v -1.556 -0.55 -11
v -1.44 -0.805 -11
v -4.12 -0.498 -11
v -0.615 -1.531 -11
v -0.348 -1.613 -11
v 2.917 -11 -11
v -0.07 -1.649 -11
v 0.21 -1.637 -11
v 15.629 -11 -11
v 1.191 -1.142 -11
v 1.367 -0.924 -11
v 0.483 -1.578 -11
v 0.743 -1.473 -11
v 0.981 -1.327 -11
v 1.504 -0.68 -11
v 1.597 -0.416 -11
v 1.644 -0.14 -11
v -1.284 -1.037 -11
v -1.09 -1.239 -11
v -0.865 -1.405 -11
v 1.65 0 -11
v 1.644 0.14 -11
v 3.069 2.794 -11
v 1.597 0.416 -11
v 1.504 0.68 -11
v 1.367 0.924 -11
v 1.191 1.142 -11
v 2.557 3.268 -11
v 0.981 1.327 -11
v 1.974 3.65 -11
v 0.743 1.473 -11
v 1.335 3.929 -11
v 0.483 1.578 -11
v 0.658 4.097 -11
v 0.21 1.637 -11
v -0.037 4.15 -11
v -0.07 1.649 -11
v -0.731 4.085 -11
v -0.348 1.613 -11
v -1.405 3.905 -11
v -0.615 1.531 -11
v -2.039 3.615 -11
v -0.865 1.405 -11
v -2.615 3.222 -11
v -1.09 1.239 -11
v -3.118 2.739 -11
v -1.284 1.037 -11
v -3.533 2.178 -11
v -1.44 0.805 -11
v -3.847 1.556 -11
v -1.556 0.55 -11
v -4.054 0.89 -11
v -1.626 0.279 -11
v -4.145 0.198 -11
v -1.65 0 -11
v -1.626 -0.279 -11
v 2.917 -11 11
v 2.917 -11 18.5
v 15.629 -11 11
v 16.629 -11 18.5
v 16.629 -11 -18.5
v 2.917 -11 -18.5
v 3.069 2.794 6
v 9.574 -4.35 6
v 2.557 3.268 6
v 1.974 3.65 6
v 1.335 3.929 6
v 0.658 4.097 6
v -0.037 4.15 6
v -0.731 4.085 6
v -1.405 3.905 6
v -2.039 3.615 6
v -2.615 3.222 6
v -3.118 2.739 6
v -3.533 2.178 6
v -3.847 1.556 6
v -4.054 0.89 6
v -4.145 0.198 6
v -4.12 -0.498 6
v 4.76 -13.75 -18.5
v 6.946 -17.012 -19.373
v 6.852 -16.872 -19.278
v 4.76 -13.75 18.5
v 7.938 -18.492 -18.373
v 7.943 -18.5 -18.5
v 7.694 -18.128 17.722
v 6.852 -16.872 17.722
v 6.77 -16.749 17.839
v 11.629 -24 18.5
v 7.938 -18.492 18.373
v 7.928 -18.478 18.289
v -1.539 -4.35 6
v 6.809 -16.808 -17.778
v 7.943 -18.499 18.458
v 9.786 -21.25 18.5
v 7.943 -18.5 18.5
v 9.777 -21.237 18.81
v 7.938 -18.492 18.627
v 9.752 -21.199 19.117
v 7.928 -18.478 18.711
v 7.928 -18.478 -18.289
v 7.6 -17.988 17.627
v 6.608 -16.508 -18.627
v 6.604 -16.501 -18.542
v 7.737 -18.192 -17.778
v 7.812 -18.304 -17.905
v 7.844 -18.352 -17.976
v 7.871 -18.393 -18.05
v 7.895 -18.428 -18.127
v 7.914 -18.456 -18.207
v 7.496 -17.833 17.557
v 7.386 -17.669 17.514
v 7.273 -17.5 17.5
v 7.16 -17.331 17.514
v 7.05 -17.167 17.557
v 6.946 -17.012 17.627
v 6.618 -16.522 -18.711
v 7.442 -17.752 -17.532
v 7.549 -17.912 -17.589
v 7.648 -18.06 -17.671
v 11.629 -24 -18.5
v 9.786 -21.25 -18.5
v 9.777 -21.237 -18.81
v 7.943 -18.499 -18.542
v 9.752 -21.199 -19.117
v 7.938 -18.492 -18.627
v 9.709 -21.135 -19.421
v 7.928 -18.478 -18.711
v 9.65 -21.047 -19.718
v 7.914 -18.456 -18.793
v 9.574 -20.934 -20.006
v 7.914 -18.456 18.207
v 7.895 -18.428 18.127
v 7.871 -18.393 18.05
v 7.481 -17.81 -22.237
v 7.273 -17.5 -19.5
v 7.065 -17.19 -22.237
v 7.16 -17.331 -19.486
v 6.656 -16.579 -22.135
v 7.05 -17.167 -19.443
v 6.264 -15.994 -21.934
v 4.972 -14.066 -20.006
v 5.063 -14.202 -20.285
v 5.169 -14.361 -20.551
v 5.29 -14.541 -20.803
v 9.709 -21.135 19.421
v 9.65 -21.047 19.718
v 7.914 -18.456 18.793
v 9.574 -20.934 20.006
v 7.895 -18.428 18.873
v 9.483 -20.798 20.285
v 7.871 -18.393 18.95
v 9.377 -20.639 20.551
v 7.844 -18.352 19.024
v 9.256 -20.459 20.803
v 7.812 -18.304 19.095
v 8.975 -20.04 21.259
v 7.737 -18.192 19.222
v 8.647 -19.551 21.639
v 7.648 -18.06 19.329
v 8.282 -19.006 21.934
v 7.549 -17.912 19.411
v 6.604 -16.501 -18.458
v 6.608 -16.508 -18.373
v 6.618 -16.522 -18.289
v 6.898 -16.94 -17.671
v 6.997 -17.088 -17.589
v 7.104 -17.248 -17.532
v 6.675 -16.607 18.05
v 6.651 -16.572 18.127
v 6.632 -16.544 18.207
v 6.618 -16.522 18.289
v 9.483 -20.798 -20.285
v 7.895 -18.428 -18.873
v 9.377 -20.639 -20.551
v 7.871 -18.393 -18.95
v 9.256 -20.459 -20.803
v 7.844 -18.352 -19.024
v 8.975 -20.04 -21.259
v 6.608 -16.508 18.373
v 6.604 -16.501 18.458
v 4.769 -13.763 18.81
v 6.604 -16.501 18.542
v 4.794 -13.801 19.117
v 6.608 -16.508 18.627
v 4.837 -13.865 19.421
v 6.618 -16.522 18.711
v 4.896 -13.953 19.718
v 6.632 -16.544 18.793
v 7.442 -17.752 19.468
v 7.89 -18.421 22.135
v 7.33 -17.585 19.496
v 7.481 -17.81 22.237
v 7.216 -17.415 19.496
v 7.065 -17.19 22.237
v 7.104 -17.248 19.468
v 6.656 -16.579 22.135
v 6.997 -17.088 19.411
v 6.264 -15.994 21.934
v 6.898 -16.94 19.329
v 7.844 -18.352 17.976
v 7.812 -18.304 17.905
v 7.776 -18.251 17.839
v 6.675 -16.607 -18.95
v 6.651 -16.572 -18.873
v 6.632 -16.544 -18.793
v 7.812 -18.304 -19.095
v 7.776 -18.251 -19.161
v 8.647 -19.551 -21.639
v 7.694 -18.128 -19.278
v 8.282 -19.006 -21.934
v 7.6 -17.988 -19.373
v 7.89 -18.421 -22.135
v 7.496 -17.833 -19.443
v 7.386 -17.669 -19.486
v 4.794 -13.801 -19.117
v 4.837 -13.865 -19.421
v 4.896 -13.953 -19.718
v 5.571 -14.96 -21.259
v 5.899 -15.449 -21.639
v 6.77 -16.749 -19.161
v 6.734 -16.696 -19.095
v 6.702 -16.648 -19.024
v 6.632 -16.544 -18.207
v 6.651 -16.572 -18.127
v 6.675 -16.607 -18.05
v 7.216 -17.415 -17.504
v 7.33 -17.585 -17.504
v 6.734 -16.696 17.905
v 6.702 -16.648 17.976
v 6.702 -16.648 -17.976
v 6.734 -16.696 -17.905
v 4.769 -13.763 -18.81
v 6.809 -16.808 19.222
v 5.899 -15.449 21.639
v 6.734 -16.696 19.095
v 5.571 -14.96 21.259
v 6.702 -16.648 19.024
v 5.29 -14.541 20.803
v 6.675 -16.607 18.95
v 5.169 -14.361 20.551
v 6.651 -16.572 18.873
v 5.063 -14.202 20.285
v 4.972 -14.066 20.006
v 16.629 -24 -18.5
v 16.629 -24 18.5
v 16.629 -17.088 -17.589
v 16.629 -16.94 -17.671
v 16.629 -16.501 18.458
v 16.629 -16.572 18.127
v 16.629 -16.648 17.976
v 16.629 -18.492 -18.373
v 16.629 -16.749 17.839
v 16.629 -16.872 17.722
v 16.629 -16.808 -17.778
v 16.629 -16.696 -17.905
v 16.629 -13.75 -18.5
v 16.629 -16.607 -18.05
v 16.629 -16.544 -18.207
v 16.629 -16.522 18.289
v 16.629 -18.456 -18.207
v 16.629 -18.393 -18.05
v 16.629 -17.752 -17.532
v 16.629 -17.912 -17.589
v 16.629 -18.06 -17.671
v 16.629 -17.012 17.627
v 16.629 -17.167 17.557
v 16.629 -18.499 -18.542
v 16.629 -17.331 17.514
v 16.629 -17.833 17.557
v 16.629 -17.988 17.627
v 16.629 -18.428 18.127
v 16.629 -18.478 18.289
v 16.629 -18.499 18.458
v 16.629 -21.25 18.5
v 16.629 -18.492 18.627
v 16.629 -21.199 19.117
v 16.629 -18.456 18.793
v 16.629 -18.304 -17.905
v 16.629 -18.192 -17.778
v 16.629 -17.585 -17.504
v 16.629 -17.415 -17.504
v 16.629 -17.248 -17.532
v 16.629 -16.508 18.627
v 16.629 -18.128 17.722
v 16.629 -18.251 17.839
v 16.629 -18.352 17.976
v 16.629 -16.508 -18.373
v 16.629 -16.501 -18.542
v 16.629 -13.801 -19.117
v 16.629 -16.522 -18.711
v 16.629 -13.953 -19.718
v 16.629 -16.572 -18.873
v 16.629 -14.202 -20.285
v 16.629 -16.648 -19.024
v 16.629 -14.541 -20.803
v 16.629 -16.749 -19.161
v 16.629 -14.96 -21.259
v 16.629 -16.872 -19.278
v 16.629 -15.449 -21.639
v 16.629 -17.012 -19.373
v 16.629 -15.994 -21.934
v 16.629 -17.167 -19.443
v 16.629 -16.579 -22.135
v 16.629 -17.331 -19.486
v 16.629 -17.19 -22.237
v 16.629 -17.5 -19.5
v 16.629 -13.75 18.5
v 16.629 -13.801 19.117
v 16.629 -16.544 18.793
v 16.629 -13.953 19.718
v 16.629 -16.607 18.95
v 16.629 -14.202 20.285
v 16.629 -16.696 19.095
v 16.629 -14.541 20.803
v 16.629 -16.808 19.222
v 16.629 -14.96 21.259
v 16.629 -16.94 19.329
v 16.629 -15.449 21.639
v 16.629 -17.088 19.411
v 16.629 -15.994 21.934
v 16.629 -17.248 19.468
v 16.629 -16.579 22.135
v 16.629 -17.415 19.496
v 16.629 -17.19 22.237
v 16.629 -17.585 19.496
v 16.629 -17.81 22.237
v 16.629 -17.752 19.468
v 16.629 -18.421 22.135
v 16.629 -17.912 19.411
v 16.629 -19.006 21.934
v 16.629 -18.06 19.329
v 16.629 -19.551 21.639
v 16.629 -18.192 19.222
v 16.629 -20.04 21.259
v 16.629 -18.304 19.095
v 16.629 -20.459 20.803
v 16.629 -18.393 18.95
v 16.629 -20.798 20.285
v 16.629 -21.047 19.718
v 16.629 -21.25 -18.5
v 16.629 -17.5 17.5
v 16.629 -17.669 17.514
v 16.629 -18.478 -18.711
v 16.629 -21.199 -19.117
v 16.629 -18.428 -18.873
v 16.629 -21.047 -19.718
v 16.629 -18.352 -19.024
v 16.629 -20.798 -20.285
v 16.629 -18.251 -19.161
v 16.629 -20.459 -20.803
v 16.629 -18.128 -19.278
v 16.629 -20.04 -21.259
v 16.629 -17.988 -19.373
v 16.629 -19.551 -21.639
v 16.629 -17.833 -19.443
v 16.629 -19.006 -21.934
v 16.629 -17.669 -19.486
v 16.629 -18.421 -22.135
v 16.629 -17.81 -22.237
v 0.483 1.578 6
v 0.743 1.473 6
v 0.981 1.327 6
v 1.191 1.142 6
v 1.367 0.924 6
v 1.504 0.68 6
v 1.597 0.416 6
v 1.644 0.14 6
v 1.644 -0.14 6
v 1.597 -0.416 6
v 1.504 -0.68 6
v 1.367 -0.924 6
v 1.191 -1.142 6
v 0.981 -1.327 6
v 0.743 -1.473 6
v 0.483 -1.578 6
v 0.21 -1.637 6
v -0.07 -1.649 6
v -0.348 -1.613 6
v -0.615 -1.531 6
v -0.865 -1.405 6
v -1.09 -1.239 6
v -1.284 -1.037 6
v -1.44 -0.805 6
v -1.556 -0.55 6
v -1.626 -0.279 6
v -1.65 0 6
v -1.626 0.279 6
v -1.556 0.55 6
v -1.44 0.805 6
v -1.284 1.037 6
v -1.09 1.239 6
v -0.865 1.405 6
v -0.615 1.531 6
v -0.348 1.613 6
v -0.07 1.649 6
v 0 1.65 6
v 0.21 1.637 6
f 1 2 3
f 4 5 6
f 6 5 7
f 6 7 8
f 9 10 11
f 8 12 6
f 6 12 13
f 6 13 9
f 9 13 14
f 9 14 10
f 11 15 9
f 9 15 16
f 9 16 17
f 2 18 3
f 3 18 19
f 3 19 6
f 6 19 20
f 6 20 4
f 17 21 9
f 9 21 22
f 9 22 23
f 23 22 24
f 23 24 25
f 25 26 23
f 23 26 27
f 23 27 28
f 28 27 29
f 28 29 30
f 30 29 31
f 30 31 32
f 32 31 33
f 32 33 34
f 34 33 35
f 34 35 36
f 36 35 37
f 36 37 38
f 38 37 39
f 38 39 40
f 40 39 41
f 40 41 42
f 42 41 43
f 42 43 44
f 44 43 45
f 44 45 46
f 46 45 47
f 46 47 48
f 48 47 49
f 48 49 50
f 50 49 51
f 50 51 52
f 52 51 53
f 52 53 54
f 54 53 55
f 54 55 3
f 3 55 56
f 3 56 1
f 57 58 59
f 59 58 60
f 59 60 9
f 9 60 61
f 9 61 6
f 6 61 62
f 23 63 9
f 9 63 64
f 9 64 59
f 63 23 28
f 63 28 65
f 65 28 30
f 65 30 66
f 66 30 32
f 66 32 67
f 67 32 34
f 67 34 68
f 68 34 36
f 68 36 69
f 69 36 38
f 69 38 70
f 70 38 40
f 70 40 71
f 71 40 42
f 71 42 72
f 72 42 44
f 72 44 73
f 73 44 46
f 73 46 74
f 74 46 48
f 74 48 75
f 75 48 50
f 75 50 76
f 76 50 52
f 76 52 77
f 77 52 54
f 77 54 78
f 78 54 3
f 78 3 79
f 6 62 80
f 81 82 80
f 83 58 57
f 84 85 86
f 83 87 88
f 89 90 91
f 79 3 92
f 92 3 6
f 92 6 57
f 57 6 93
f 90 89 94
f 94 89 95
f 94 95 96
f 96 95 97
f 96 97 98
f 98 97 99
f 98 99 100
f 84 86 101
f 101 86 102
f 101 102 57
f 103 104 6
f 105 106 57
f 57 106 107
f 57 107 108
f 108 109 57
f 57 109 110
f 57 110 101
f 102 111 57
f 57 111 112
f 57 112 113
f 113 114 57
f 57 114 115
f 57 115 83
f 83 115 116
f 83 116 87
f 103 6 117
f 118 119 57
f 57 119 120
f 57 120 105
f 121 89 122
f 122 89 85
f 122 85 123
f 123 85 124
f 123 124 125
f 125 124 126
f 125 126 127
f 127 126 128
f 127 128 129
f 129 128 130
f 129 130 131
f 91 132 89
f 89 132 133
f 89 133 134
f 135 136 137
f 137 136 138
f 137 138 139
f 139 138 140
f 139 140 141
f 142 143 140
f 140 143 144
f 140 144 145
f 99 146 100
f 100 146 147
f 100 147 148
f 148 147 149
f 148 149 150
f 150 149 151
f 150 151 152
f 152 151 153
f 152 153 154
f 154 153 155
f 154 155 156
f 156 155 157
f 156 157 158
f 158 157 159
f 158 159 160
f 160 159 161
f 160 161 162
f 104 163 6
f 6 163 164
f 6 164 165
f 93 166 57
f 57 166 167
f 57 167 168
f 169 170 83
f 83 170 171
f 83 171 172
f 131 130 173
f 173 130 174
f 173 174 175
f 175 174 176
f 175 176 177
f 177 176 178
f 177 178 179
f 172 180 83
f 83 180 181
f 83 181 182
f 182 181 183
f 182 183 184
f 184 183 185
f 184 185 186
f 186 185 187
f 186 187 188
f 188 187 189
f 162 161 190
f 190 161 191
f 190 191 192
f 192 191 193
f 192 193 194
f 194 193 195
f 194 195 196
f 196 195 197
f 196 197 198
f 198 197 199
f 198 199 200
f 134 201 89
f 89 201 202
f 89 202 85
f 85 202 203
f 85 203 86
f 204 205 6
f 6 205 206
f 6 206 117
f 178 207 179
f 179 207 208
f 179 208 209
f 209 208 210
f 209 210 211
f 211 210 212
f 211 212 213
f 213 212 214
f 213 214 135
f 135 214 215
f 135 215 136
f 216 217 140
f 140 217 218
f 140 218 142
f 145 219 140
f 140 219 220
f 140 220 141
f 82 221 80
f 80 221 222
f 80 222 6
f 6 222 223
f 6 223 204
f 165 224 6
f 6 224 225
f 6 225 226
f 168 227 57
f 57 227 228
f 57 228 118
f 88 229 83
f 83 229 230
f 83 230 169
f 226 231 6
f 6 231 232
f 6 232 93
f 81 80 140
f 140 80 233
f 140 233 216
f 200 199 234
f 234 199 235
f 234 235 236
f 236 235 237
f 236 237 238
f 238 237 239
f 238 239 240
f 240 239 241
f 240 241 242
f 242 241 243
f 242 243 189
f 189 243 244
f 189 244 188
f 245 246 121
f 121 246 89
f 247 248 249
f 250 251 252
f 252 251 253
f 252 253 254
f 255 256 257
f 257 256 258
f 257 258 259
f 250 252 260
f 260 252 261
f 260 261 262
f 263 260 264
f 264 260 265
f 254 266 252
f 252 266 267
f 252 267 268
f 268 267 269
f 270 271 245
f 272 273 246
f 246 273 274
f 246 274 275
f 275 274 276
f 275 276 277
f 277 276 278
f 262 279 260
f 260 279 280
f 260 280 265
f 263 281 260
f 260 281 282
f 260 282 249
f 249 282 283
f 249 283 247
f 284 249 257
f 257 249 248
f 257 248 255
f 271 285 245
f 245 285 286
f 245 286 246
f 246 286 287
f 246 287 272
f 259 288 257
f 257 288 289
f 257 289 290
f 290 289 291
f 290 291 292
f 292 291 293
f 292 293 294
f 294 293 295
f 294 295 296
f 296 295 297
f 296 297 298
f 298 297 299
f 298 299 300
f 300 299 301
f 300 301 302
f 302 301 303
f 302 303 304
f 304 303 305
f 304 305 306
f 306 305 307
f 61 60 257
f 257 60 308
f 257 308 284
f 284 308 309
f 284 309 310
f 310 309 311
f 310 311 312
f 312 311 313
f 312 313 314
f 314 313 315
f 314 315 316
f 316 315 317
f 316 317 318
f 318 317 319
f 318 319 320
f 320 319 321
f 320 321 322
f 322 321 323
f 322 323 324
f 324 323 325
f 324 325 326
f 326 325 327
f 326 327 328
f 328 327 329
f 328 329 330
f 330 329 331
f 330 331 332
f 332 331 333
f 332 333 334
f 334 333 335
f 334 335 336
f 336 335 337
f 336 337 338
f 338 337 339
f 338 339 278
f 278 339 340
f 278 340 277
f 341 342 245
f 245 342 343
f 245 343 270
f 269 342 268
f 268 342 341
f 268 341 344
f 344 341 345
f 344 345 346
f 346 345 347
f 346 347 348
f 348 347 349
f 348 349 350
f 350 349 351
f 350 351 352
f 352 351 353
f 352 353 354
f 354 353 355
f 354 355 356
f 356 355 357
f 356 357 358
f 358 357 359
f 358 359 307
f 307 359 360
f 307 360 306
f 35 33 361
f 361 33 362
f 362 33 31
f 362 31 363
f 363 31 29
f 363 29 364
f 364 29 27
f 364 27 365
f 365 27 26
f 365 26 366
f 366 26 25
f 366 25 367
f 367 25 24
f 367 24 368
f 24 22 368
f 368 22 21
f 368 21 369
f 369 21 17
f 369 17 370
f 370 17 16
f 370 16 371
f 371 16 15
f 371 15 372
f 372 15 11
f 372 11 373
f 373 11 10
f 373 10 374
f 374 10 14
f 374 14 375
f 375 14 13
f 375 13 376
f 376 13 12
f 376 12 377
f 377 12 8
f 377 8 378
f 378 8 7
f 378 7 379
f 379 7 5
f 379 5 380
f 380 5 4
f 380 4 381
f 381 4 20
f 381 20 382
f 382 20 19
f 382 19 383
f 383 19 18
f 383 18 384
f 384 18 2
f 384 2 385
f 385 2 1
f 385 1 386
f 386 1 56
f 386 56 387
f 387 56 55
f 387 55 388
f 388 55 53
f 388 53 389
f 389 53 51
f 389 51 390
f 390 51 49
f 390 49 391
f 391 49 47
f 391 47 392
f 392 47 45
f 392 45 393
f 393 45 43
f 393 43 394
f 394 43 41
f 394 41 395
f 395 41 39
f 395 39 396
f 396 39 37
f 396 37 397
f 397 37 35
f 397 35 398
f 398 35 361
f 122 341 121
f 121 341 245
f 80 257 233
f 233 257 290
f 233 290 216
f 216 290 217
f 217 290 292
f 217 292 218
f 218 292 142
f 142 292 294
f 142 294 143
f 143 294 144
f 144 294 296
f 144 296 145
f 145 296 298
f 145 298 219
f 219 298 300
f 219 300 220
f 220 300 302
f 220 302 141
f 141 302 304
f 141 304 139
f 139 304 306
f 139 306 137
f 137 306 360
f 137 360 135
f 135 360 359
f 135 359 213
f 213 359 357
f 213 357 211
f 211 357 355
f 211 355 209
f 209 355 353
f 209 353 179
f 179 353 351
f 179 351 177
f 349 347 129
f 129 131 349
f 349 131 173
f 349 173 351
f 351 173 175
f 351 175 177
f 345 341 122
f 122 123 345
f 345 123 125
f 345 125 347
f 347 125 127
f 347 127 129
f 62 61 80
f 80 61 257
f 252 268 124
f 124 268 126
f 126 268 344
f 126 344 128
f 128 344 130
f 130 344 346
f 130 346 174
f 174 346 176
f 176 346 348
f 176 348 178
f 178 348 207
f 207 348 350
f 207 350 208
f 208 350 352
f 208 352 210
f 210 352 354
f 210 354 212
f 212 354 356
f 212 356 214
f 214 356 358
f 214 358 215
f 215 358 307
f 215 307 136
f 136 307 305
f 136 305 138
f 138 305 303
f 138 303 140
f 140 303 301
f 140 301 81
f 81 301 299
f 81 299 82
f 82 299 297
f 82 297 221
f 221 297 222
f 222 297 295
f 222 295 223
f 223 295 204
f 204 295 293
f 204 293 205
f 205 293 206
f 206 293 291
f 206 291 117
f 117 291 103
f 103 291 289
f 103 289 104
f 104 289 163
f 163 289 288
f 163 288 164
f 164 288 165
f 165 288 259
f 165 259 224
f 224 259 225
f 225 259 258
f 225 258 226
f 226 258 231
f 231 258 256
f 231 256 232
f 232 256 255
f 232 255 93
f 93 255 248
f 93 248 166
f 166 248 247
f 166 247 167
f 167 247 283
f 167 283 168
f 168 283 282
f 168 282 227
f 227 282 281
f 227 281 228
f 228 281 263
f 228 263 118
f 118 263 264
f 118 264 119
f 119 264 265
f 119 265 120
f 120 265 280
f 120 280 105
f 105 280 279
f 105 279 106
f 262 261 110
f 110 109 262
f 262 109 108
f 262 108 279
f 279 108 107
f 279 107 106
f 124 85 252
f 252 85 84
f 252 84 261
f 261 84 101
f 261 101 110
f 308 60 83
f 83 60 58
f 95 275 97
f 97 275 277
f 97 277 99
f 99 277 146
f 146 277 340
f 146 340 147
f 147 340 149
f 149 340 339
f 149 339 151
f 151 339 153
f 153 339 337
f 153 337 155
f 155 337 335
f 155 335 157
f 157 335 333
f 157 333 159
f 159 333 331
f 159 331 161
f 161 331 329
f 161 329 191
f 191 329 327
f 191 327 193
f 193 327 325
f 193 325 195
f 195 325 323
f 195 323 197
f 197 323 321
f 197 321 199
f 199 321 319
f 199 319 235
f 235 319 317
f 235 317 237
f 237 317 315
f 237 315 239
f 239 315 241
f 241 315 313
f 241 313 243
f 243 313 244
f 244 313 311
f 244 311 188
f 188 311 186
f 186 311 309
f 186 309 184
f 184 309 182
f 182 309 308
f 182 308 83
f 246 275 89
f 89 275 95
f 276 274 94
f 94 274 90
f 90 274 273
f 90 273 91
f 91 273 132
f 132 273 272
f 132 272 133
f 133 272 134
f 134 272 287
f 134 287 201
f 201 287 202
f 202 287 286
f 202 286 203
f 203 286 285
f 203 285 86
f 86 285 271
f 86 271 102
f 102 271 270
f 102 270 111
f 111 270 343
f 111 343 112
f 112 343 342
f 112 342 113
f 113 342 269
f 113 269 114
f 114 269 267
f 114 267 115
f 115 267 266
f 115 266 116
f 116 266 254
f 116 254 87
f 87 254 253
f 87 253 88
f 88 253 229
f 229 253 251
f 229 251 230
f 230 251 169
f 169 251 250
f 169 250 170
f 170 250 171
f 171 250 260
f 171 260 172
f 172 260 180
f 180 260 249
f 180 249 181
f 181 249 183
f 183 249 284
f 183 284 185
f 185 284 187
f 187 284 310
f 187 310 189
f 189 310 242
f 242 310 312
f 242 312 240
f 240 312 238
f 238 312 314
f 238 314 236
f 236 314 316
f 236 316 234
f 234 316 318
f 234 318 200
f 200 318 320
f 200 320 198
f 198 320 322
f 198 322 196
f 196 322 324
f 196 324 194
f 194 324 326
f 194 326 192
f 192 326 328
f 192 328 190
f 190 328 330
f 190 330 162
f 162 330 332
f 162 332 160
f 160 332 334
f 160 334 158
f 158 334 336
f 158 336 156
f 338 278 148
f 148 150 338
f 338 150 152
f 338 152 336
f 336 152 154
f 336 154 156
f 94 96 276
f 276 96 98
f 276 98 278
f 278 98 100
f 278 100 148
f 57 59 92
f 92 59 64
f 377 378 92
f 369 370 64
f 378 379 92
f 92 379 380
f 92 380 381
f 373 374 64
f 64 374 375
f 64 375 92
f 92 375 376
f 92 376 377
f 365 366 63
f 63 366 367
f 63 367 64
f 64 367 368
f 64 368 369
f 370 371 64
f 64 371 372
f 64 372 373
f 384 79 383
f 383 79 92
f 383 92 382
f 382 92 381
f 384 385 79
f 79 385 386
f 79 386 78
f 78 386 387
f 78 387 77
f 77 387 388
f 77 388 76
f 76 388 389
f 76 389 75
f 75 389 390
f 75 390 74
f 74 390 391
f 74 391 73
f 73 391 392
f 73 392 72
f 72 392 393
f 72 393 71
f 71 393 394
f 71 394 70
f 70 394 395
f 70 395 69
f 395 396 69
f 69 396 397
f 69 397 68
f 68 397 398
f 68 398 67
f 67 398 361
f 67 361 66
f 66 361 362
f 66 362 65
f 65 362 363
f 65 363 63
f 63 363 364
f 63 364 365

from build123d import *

# Parameters (mm, degrees)
ESQUISSE1_R             = 1.65
BOSS_EXTRU_1_DEPTH      = 11
BOSS_EXTRU_2_REACH      = 35.597
ESQUISSE2_W             = 22
ESQUISSE2_H             = 6.5
ENL_V_MAT_EXTRU_1_DEPTH = 30


with BuildPart() as part:
    # Esquisse1 → Boss.-Extru.1 (new, symmetric)
    with BuildSketch(Plane.XY):
        with BuildLine():
            Line((11.628725406, -24), (16.628725406, -24))
            Line((16.628725406, -24), (16.628725406, -11))
            Line((16.628725406, -11), (15.628725406, -11))
            Line((15.628725406, -11), (3.068517607, 2.794047189))
            ThreePointArc((3.068517607, 2.794047189), (-1.728115101, 3.77307808), (-4.119967472, -0.49836536))
            Line((-4.119967472, -0.49836536), (11.628725406, -24))
        make_face()
        Circle(ESQUISSE1_R, mode=Mode.SUBTRACT)
    extrude(amount=BOSS_EXTRU_1_DEPTH, both=True)

    # Boss.-Extru.2: up to this plane
    boss_extru_2_end = Plane(origin=(-4.119967472, -0.49836536, 11), z_dir=(0.8307275154862657, 0.5566792568562408, 0))
    # Esquisse2 → Boss.-Extru.2 (add, up to the surface)
    with BuildSketch(Plane(origin=(16.628725406, 0, 0), x_dir=(0, 0, -1), z_dir=(1, 0, 0)), mode=Mode.PRIVATE) as boss_extru_2_sk1:
        with BuildLine():
            ThreePointArc((-18.5, -13.75), (-15.848349571, -14.848349571), (-14.75, -17.5))
            Line((-14.75, -17.5), (-11, -17.5))
            Line((-11, -17.5), (-11, -11))
            Line((-11, -11), (-18.5, -11))
            Line((-18.5, -11), (-18.5, -13.75))
        make_face()
    boss_extru_2_tool1 = split(extrude(boss_extru_2_sk1.sketch, amount=-BOSS_EXTRU_2_REACH, mode=Mode.PRIVATE), bisect_by=boss_extru_2_end, keep=Keep.BOTH, mode=Mode.PRIVATE)
    add(boss_extru_2_tool1.solids().sort_by_distance((16.628725, -13.764206, 14.117746))[0])
    # Esquisse2 → Boss.-Extru.2 (add, up to the surface)
    with BuildSketch(Plane(origin=(16.628725406, 0, 0), x_dir=(0, 0, -1), z_dir=(1, 0, 0)), mode=Mode.PRIVATE) as boss_extru_2_sk2:
        with BuildLine():
            Line((-11, -17.5), (-14.75, -17.5))
            ThreePointArc((-14.75, -17.5), (-15.848349571, -20.151650429), (-18.5, -21.25))
            Line((-18.5, -21.25), (-18.5, -24))
            Line((-18.5, -24), (-11, -24))
            Line((-11, -24), (-11, -17.5))
        make_face()
    boss_extru_2_tool2 = split(extrude(boss_extru_2_sk2.sketch, amount=-BOSS_EXTRU_2_REACH, mode=Mode.PRIVATE), bisect_by=boss_extru_2_end, keep=Keep.BOTH, mode=Mode.PRIVATE)
    add(boss_extru_2_tool2.solids().sort_by_distance((16.628725, -21.235794, 14.117746))[0])
    # Esquisse2 → Boss.-Extru.2 (add, up to the surface)
    with BuildSketch(Plane(origin=(16.628725406, 0, 0), x_dir=(0, 0, -1), z_dir=(1, 0, 0)), mode=Mode.PRIVATE) as boss_extru_2_sk3:
        with BuildLine():
            ThreePointArc((-18.5, -16.5), (-17.792893219, -16.792893219), (-17.5, -17.5))
            Line((-17.5, -17.5), (-14.75, -17.5))
            ThreePointArc((-14.75, -17.5), (-15.848349571, -14.848349571), (-18.5, -13.75))
            Line((-18.5, -13.75), (-18.5, -16.5))
        make_face()
    boss_extru_2_tool3 = split(extrude(boss_extru_2_sk3.sketch, amount=-BOSS_EXTRU_2_REACH, mode=Mode.PRIVATE), bisect_by=boss_extru_2_end, keep=Keep.BOTH, mode=Mode.PRIVATE)
    add(boss_extru_2_tool3.solids().sort_by_distance((16.628725, -15.8191, 16.8191))[0])
    # Esquisse2 → Boss.-Extru.2 (add, up to the surface)
    with BuildSketch(Plane(origin=(16.628725406, 0, 0), x_dir=(0, 0, -1), z_dir=(1, 0, 0)), mode=Mode.PRIVATE) as boss_extru_2_sk4:
        with BuildLine():
            Line((-14.75, -17.5), (-17.5, -17.5))
            ThreePointArc((-17.5, -17.5), (-17.792893219, -18.207106781), (-18.5, -18.5))
            Line((-18.5, -18.5), (-18.5, -21.25))
            ThreePointArc((-18.5, -21.25), (-15.848349571, -20.151650429), (-14.75, -17.5))
        make_face()
    boss_extru_2_tool4 = split(extrude(boss_extru_2_sk4.sketch, amount=-BOSS_EXTRU_2_REACH, mode=Mode.PRIVATE), bisect_by=boss_extru_2_end, keep=Keep.BOTH, mode=Mode.PRIVATE)
    add(boss_extru_2_tool4.solids().sort_by_distance((16.628725, -19.1809, 16.8191))[0])
    # Esquisse2 → Boss.-Extru.2 (add, up to the surface)
    with BuildSketch(Plane(origin=(16.628725406, 0, 0), x_dir=(0, 0, -1), z_dir=(1, 0, 0)), mode=Mode.PRIVATE) as boss_extru_2_sk5:
        with BuildLine():
            ThreePointArc((-18.5, -16.5), (-17.792893219, -16.792893219), (-17.5, -17.5))
            Line((-17.5, -17.5), (-14.75, -17.5))
            ThreePointArc((-14.75, -17.5), (-15.848349571, -14.848349571), (-18.5, -13.75))
            Line((-18.5, -13.75), (-18.5, -16.5))
        make_face()
    boss_extru_2_tool5 = split(extrude(boss_extru_2_sk5.sketch, amount=-BOSS_EXTRU_2_REACH, mode=Mode.PRIVATE), bisect_by=boss_extru_2_end, keep=Keep.BOTH, mode=Mode.PRIVATE)
    add(boss_extru_2_tool5.solids().sort_by_distance((16.628725, -15.8191, 16.8191))[0])
    # Esquisse2 → Boss.-Extru.2 (add, up to the surface)
    with BuildSketch(Plane(origin=(16.628725406, 0, 0), x_dir=(0, 0, -1), z_dir=(1, 0, 0)), mode=Mode.PRIVATE) as boss_extru_2_sk6:
        with BuildLine():
            Line((-14.75, -17.5), (-17.5, -17.5))
            ThreePointArc((-17.5, -17.5), (-17.792893219, -18.207106781), (-18.5, -18.5))
            Line((-18.5, -18.5), (-18.5, -21.25))
            ThreePointArc((-18.5, -21.25), (-15.848349571, -20.151650429), (-14.75, -17.5))
        make_face()
    boss_extru_2_tool6 = split(extrude(boss_extru_2_sk6.sketch, amount=-BOSS_EXTRU_2_REACH, mode=Mode.PRIVATE), bisect_by=boss_extru_2_end, keep=Keep.BOTH, mode=Mode.PRIVATE)
    add(boss_extru_2_tool6.solids().sort_by_distance((16.628725, -19.1809, 16.8191))[0])
    # Esquisse2 → Boss.-Extru.2 (add, up to the surface)
    with BuildSketch(Plane(origin=(16.628725406, 0, 0), x_dir=(0, 0, -1), z_dir=(1, 0, 0)), mode=Mode.PRIVATE) as boss_extru_2_sk7:
        with BuildLine():
            ThreePointArc((-18.5, -18.5), (-19.5, -17.5), (-18.5, -16.5))
            Line((-18.5, -16.5), (-18.5, -13.75))
            ThreePointArc((-18.5, -13.75), (-22.25, -17.5), (-18.5, -21.25))
            Line((-18.5, -21.25), (-18.5, -18.5))
        make_face()
    boss_extru_2_tool7 = split(extrude(boss_extru_2_sk7.sketch, amount=-BOSS_EXTRU_2_REACH, mode=Mode.PRIVATE), bisect_by=boss_extru_2_end, keep=Keep.BOTH, mode=Mode.PRIVATE)
    add(boss_extru_2_tool7.solids().sort_by_distance((16.628725, -17.5, 20.1809))[0])
    # Esquisse2 → Boss.-Extru.2 (add, up to the surface)
    with BuildSketch(Plane(origin=(16.628725406, 0, 0), x_dir=(0, 0, -1), z_dir=(1, 0, 0)), mode=Mode.PRIVATE) as boss_extru_2_sk8:
        with Locations((0, -14.25)):
            Rectangle(ESQUISSE2_W, ESQUISSE2_H)
    boss_extru_2_tool8 = split(extrude(boss_extru_2_sk8.sketch, amount=-BOSS_EXTRU_2_REACH, mode=Mode.PRIVATE), bisect_by=boss_extru_2_end, keep=Keep.BOTH, mode=Mode.PRIVATE)
    add(boss_extru_2_tool8.solids().sort_by_distance((16.628725, -14.25, 0))[0])
    # Esquisse2 → Boss.-Extru.2 (add, up to the surface)
    with BuildSketch(Plane(origin=(16.628725406, 0, 0), x_dir=(0, 0, -1), z_dir=(1, 0, 0)), mode=Mode.PRIVATE) as boss_extru_2_sk9:
        with Locations((0, -20.75)):
            Rectangle(ESQUISSE2_W, ESQUISSE2_H)
    boss_extru_2_tool9 = split(extrude(boss_extru_2_sk9.sketch, amount=-BOSS_EXTRU_2_REACH, mode=Mode.PRIVATE), bisect_by=boss_extru_2_end, keep=Keep.BOTH, mode=Mode.PRIVATE)
    add(boss_extru_2_tool9.solids().sort_by_distance((16.628725, -20.75, 0))[0])
    # Esquisse2 → Boss.-Extru.2 (add, up to the surface)
    with BuildSketch(Plane(origin=(16.628725406, 0, 0), x_dir=(0, 0, -1), z_dir=(1, 0, 0)), mode=Mode.PRIVATE) as boss_extru_2_sk10:
        with BuildLine():
            Line((11, -11), (11, -17.5))
            Line((11, -17.5), (14.75, -17.5))
            ThreePointArc((14.75, -17.5), (15.848349571, -14.848349571), (18.5, -13.75))
            Line((18.5, -13.75), (18.5, -11))
            Line((18.5, -11), (11, -11))
        make_face()
    boss_extru_2_tool10 = split(extrude(boss_extru_2_sk10.sketch, amount=-BOSS_EXTRU_2_REACH, mode=Mode.PRIVATE), bisect_by=boss_extru_2_end, keep=Keep.BOTH, mode=Mode.PRIVATE)
    add(boss_extru_2_tool10.solids().sort_by_distance((16.628725, -13.764206, -14.117746))[0])
    # Esquisse2 → Boss.-Extru.2 (add, up to the surface)
    with BuildSketch(Plane(origin=(16.628725406, 0, 0), x_dir=(0, 0, -1), z_dir=(1, 0, 0)), mode=Mode.PRIVATE) as boss_extru_2_sk11:
        with BuildLine():
            Line((14.75, -17.5), (11, -17.5))
            Line((11, -17.5), (11, -24))
            Line((11, -24), (18.5, -24))
            Line((18.5, -24), (18.5, -21.25))
            ThreePointArc((18.5, -21.25), (15.848349571, -20.151650429), (14.75, -17.5))
        make_face()
    boss_extru_2_tool11 = split(extrude(boss_extru_2_sk11.sketch, amount=-BOSS_EXTRU_2_REACH, mode=Mode.PRIVATE), bisect_by=boss_extru_2_end, keep=Keep.BOTH, mode=Mode.PRIVATE)
    add(boss_extru_2_tool11.solids().sort_by_distance((16.628725, -21.235794, -14.117746))[0])
    # Esquisse2 → Boss.-Extru.2 (add, up to the surface)
    with BuildSketch(Plane(origin=(16.628725406, 0, 0), x_dir=(0, 0, -1), z_dir=(1, 0, 0)), mode=Mode.PRIVATE) as boss_extru_2_sk12:
        with BuildLine():
            ThreePointArc((18.5, -13.75), (15.848349571, -14.848349571), (14.75, -17.5))
            Line((14.75, -17.5), (17.5, -17.5))
            ThreePointArc((17.5, -17.5), (17.792893219, -16.792893219), (18.5, -16.5))
            Line((18.5, -16.5), (18.5, -13.75))
        make_face()
    boss_extru_2_tool12 = split(extrude(boss_extru_2_sk12.sketch, amount=-BOSS_EXTRU_2_REACH, mode=Mode.PRIVATE), bisect_by=boss_extru_2_end, keep=Keep.BOTH, mode=Mode.PRIVATE)
    add(boss_extru_2_tool12.solids().sort_by_distance((16.628725, -15.8191, -16.8191))[0])
    # Esquisse2 → Boss.-Extru.2 (add, up to the surface)
    with BuildSketch(Plane(origin=(16.628725406, 0, 0), x_dir=(0, 0, -1), z_dir=(1, 0, 0)), mode=Mode.PRIVATE) as boss_extru_2_sk13:
        with BuildLine():
            Line((17.5, -17.5), (14.75, -17.5))
            ThreePointArc((14.75, -17.5), (15.848349571, -20.151650429), (18.5, -21.25))
            Line((18.5, -21.25), (18.5, -18.5))
            ThreePointArc((18.5, -18.5), (17.792893219, -18.207106781), (17.5, -17.5))
        make_face()
    boss_extru_2_tool13 = split(extrude(boss_extru_2_sk13.sketch, amount=-BOSS_EXTRU_2_REACH, mode=Mode.PRIVATE), bisect_by=boss_extru_2_end, keep=Keep.BOTH, mode=Mode.PRIVATE)
    add(boss_extru_2_tool13.solids().sort_by_distance((16.628725, -19.1809, -16.8191))[0])
    # Esquisse2 → Boss.-Extru.2 (add, up to the surface)
    with BuildSketch(Plane(origin=(16.628725406, 0, 0), x_dir=(0, 0, -1), z_dir=(1, 0, 0)), mode=Mode.PRIVATE) as boss_extru_2_sk14:
        with BuildLine():
            ThreePointArc((18.5, -13.75), (15.848349571, -14.848349571), (14.75, -17.5))
            Line((14.75, -17.5), (17.5, -17.5))
            ThreePointArc((17.5, -17.5), (17.792893219, -16.792893219), (18.5, -16.5))
            Line((18.5, -16.5), (18.5, -13.75))
        make_face()
    boss_extru_2_tool14 = split(extrude(boss_extru_2_sk14.sketch, amount=-BOSS_EXTRU_2_REACH, mode=Mode.PRIVATE), bisect_by=boss_extru_2_end, keep=Keep.BOTH, mode=Mode.PRIVATE)
    add(boss_extru_2_tool14.solids().sort_by_distance((16.628725, -15.8191, -16.8191))[0])
    # Esquisse2 → Boss.-Extru.2 (add, up to the surface)
    with BuildSketch(Plane(origin=(16.628725406, 0, 0), x_dir=(0, 0, -1), z_dir=(1, 0, 0)), mode=Mode.PRIVATE) as boss_extru_2_sk15:
        with BuildLine():
            Line((17.5, -17.5), (14.75, -17.5))
            ThreePointArc((14.75, -17.5), (15.848349571, -20.151650429), (18.5, -21.25))
            Line((18.5, -21.25), (18.5, -18.5))
            ThreePointArc((18.5, -18.5), (17.792893219, -18.207106781), (17.5, -17.5))
        make_face()
    boss_extru_2_tool15 = split(extrude(boss_extru_2_sk15.sketch, amount=-BOSS_EXTRU_2_REACH, mode=Mode.PRIVATE), bisect_by=boss_extru_2_end, keep=Keep.BOTH, mode=Mode.PRIVATE)
    add(boss_extru_2_tool15.solids().sort_by_distance((16.628725, -19.1809, -16.8191))[0])
    # Esquisse2 → Boss.-Extru.2 (add, up to the surface)
    with BuildSketch(Plane(origin=(16.628725406, 0, 0), x_dir=(0, 0, -1), z_dir=(1, 0, 0)), mode=Mode.PRIVATE) as boss_extru_2_sk16:
        with BuildLine():
            ThreePointArc((22.25, -17.5), (21.151650429, -14.848349571), (18.5, -13.75))
            Line((18.5, -13.75), (18.5, -16.5))
            ThreePointArc((18.5, -16.5), (19.207106781, -16.792893219), (19.5, -17.5))
            ThreePointArc((19.5, -17.5), (19.207106781, -18.207106781), (18.5, -18.5))
            Line((18.5, -18.5), (18.5, -21.25))
            ThreePointArc((18.5, -21.25), (21.151650429, -20.151650429), (22.25, -17.5))
        make_face()
    boss_extru_2_tool16 = split(extrude(boss_extru_2_sk16.sketch, amount=-BOSS_EXTRU_2_REACH, mode=Mode.PRIVATE), bisect_by=boss_extru_2_end, keep=Keep.BOTH, mode=Mode.PRIVATE)
    add(boss_extru_2_tool16.solids().sort_by_distance((16.628725, -17.5, -20.1809))[0])

    # Esquisse3 → Enl_v. mat.-Extru.1 (cut)
    with BuildSketch(Plane(origin=(16.628725406, 0, 0), x_dir=(0, 0, -1), z_dir=(1, 0, 0))):
        Polygon((-6, 4.15), (-6, -4.35), (-11, -11), (-11, 4.15), align=None)
    extrude(amount=-ENL_V_MAT_EXTRU_1_DEPTH, mode=Mode.SUBTRACT)


solid = part.part
